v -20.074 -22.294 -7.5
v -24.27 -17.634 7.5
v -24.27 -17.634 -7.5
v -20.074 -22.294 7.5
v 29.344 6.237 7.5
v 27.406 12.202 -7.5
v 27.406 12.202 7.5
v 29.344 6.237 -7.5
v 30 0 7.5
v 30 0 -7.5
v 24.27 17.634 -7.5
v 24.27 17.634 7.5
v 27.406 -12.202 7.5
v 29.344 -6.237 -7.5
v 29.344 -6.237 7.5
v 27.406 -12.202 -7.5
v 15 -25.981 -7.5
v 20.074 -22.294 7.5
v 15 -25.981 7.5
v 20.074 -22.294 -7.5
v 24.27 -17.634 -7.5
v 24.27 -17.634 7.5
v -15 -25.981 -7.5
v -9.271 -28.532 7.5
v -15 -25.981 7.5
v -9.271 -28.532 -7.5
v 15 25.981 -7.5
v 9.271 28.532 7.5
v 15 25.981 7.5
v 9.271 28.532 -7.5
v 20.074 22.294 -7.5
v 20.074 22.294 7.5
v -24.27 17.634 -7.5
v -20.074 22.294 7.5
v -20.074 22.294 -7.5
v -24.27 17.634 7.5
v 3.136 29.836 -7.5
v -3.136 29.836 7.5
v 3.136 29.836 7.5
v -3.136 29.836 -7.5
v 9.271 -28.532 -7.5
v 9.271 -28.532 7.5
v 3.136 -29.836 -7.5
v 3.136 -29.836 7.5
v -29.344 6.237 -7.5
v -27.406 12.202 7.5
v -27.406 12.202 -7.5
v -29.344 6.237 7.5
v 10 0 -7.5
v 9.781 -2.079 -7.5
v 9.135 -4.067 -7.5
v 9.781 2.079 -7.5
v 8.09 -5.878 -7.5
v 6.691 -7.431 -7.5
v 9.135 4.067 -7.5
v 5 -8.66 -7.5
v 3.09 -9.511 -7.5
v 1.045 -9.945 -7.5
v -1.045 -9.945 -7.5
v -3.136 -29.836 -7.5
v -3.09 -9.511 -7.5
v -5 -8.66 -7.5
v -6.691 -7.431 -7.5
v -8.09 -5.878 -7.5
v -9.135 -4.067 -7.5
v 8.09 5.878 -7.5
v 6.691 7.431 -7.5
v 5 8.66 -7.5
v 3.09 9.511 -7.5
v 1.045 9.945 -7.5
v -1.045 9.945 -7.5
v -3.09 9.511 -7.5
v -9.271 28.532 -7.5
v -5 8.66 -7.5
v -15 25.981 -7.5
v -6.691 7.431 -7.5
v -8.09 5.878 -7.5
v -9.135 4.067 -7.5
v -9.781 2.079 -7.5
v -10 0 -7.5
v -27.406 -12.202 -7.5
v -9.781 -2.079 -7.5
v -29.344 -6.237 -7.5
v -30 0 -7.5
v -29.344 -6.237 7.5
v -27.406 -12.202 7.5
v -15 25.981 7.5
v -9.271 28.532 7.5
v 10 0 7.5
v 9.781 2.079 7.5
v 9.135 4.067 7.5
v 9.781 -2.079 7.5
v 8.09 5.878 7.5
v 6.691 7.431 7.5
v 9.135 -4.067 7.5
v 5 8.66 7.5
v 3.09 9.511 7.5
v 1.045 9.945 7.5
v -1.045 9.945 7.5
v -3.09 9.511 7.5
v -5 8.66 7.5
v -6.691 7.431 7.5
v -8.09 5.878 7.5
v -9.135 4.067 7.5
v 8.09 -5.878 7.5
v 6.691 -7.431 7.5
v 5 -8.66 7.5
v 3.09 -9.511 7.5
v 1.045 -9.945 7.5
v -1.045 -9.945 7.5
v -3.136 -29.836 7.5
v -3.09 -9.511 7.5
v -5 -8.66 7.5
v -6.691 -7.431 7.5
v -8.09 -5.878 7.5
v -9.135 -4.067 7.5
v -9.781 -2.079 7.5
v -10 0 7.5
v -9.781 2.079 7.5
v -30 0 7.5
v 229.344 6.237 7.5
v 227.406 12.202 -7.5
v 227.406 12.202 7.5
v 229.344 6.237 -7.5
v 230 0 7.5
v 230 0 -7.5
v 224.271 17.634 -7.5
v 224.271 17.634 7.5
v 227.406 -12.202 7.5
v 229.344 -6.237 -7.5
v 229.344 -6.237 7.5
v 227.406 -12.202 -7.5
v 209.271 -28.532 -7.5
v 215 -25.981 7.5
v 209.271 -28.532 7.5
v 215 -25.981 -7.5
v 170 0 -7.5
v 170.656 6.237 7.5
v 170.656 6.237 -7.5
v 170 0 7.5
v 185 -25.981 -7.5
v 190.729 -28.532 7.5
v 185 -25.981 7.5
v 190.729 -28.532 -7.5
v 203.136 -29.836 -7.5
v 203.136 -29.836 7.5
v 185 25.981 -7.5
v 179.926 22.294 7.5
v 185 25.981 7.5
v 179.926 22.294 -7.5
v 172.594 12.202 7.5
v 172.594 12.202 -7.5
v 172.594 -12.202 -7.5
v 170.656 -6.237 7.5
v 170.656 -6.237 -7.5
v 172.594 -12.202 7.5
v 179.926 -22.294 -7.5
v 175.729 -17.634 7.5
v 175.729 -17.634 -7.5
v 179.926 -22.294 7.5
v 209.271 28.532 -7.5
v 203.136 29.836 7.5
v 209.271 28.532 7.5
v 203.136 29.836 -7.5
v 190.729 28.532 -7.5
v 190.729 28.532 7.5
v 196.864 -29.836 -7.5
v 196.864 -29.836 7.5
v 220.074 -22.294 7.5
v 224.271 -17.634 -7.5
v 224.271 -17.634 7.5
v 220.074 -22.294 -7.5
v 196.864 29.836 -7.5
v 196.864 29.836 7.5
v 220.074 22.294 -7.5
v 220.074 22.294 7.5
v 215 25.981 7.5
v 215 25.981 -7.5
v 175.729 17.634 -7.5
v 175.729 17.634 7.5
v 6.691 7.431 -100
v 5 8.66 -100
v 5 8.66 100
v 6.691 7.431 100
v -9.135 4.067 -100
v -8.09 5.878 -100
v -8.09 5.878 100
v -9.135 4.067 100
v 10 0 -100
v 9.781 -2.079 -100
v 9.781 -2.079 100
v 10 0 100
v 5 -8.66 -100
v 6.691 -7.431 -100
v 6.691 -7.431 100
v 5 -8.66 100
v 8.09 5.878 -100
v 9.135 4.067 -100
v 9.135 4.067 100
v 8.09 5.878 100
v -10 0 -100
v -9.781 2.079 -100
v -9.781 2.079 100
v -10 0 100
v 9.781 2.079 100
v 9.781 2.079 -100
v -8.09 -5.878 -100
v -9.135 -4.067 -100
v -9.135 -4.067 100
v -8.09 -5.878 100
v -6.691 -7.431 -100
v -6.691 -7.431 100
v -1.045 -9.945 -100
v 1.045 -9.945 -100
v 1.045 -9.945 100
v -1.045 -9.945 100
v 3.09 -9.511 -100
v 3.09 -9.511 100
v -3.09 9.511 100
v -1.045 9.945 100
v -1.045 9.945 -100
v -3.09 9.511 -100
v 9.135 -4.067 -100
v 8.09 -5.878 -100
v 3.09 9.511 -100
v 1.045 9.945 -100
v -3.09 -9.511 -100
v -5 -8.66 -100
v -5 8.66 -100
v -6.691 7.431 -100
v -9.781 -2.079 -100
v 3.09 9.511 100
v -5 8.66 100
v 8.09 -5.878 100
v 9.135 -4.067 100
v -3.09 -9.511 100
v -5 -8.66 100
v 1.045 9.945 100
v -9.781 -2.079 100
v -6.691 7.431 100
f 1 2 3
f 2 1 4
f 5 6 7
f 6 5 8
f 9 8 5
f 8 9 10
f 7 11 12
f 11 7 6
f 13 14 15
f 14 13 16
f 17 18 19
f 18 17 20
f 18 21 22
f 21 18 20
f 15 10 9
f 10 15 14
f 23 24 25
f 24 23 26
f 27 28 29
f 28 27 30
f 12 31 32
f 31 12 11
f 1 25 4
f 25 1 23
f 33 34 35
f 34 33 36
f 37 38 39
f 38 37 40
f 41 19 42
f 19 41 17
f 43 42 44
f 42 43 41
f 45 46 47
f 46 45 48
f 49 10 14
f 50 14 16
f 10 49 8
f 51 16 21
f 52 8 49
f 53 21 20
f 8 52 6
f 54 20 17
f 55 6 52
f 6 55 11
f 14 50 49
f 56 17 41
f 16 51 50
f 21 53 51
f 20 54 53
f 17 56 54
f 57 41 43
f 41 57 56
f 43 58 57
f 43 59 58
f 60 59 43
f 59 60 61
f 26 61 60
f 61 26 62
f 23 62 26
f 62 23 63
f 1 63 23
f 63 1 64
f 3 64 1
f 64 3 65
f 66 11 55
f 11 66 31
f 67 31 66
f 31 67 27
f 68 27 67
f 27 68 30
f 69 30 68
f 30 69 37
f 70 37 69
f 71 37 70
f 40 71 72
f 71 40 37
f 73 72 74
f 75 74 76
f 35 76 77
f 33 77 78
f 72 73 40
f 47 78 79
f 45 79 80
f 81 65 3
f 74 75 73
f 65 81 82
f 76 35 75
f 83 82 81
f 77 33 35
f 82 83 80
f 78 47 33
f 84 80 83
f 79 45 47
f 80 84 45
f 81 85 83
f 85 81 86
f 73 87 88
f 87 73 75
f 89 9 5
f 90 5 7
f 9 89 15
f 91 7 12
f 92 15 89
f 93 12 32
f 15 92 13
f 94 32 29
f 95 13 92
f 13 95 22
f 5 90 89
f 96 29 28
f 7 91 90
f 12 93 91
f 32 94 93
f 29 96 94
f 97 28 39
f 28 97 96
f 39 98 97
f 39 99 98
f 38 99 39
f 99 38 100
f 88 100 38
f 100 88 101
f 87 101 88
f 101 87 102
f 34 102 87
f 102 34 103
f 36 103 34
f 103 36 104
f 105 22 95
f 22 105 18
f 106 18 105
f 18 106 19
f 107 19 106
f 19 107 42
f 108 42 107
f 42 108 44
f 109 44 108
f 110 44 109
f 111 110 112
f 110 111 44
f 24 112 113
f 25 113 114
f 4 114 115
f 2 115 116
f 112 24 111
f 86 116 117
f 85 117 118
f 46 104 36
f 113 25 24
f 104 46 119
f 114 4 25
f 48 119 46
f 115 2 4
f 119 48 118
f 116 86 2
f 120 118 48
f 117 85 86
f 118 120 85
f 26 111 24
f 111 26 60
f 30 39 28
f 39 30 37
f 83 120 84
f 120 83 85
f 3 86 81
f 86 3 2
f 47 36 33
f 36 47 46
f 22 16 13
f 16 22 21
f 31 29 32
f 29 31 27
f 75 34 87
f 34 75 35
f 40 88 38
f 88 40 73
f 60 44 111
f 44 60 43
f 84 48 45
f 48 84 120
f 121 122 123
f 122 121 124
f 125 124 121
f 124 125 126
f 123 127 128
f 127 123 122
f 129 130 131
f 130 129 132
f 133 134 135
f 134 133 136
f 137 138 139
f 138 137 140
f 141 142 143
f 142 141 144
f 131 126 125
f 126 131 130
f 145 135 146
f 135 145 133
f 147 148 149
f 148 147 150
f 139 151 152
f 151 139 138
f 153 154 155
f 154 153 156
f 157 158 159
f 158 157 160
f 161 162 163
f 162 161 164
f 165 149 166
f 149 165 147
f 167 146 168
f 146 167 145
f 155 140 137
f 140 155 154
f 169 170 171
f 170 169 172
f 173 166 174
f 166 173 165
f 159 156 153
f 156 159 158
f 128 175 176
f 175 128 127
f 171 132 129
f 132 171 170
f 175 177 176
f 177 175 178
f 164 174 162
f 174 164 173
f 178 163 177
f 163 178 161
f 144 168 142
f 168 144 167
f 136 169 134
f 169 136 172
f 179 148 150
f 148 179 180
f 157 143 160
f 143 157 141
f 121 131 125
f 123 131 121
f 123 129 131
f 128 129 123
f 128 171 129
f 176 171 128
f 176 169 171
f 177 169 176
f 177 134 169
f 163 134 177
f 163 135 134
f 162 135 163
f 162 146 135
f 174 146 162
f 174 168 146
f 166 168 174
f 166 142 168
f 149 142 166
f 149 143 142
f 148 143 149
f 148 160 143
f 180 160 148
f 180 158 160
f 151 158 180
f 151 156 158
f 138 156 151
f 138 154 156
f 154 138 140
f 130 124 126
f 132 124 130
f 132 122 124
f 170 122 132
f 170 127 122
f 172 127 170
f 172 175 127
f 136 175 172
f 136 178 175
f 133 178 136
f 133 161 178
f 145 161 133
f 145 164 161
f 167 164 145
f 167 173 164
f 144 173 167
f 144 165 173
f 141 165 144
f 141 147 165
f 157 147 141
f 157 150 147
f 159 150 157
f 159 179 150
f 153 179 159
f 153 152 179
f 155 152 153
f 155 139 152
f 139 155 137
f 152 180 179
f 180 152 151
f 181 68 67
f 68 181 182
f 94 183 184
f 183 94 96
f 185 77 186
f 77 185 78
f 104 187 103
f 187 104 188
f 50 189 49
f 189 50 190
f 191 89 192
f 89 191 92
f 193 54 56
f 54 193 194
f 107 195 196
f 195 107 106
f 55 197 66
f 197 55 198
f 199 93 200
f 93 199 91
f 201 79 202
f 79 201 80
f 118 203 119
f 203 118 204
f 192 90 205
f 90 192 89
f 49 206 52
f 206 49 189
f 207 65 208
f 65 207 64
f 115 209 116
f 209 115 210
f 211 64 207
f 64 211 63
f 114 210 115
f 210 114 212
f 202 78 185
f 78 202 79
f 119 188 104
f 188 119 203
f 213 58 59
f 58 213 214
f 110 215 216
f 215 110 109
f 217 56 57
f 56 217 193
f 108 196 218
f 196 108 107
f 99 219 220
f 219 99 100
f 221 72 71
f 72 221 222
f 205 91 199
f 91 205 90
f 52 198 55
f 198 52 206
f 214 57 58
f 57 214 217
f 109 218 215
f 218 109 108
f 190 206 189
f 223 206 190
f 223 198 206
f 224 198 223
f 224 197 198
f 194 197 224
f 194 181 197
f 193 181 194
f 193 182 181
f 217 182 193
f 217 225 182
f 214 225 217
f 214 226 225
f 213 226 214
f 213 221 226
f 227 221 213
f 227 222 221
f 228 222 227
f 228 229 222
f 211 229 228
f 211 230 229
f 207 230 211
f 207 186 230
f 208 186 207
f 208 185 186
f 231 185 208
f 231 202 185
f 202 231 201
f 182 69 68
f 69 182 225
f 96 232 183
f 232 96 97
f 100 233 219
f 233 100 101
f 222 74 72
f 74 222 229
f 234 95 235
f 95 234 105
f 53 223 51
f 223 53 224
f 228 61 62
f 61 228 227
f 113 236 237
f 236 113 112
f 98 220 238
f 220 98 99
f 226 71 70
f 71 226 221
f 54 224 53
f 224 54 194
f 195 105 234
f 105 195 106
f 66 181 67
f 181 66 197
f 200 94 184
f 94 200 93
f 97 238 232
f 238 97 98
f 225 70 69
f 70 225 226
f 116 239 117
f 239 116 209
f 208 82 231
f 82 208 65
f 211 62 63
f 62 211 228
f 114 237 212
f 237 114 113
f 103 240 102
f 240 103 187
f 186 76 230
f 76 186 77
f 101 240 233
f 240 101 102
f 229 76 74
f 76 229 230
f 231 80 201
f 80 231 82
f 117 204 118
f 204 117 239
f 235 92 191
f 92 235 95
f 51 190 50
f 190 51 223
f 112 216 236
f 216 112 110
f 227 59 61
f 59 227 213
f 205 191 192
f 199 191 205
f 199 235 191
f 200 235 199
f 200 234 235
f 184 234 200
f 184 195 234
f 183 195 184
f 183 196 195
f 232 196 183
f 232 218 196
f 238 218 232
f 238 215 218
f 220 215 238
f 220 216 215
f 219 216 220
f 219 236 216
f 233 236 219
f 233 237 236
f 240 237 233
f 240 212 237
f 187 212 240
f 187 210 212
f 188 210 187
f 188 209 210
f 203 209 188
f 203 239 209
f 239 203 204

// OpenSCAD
translate([0,0,0]) cylinder(r=30.0, h=15.0, center=true);
translate([200,0,0]) cylinder(r=30.0, h=15.0, center=true);
translate([0,0,0]) cylinder(r=10.0, h=200.0, center=true);
